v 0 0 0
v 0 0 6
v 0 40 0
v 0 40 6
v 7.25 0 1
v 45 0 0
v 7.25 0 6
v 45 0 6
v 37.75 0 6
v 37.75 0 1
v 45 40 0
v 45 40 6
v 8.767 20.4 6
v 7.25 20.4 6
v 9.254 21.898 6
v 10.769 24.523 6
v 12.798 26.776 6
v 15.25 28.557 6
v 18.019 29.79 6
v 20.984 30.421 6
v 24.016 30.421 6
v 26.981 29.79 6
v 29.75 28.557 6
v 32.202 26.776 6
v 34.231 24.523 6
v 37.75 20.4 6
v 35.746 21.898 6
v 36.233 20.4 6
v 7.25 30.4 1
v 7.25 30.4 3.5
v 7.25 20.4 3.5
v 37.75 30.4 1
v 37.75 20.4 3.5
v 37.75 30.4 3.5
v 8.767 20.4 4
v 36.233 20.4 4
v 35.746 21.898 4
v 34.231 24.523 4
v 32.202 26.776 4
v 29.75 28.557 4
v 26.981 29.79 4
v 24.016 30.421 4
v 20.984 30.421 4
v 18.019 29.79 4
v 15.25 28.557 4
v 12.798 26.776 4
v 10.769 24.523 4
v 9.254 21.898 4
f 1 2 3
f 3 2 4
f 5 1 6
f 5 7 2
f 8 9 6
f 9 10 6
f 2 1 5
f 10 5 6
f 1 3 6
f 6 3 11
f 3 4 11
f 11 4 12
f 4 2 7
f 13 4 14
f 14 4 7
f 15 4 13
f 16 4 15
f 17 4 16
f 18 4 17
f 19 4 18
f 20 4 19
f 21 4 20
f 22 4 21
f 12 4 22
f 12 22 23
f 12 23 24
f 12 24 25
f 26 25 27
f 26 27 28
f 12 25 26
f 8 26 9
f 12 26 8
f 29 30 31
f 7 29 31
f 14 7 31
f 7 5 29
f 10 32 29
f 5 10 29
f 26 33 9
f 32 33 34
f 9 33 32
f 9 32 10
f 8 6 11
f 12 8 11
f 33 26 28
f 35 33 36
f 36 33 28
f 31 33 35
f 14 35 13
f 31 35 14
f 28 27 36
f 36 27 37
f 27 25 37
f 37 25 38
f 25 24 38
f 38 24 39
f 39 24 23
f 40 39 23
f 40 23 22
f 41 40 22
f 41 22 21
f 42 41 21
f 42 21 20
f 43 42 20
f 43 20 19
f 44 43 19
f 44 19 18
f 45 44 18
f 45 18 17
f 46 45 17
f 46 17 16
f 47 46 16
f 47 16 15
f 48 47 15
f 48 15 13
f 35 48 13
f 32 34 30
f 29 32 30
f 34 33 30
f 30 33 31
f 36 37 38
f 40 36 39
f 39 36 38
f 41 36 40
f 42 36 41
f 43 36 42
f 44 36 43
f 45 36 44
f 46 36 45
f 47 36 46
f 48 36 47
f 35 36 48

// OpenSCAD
difference() {
  cube([45,40,6]);

  translate([7.25, -0.1, 1])
    cube([30.5, 30.5, 2.5]);

  translate([7.25, -0.1, 1])
    cube([30.5, 20.5, 7]);

  translate([22.5, 16, 4])
    cylinder(r=14.5, h=10);
}
